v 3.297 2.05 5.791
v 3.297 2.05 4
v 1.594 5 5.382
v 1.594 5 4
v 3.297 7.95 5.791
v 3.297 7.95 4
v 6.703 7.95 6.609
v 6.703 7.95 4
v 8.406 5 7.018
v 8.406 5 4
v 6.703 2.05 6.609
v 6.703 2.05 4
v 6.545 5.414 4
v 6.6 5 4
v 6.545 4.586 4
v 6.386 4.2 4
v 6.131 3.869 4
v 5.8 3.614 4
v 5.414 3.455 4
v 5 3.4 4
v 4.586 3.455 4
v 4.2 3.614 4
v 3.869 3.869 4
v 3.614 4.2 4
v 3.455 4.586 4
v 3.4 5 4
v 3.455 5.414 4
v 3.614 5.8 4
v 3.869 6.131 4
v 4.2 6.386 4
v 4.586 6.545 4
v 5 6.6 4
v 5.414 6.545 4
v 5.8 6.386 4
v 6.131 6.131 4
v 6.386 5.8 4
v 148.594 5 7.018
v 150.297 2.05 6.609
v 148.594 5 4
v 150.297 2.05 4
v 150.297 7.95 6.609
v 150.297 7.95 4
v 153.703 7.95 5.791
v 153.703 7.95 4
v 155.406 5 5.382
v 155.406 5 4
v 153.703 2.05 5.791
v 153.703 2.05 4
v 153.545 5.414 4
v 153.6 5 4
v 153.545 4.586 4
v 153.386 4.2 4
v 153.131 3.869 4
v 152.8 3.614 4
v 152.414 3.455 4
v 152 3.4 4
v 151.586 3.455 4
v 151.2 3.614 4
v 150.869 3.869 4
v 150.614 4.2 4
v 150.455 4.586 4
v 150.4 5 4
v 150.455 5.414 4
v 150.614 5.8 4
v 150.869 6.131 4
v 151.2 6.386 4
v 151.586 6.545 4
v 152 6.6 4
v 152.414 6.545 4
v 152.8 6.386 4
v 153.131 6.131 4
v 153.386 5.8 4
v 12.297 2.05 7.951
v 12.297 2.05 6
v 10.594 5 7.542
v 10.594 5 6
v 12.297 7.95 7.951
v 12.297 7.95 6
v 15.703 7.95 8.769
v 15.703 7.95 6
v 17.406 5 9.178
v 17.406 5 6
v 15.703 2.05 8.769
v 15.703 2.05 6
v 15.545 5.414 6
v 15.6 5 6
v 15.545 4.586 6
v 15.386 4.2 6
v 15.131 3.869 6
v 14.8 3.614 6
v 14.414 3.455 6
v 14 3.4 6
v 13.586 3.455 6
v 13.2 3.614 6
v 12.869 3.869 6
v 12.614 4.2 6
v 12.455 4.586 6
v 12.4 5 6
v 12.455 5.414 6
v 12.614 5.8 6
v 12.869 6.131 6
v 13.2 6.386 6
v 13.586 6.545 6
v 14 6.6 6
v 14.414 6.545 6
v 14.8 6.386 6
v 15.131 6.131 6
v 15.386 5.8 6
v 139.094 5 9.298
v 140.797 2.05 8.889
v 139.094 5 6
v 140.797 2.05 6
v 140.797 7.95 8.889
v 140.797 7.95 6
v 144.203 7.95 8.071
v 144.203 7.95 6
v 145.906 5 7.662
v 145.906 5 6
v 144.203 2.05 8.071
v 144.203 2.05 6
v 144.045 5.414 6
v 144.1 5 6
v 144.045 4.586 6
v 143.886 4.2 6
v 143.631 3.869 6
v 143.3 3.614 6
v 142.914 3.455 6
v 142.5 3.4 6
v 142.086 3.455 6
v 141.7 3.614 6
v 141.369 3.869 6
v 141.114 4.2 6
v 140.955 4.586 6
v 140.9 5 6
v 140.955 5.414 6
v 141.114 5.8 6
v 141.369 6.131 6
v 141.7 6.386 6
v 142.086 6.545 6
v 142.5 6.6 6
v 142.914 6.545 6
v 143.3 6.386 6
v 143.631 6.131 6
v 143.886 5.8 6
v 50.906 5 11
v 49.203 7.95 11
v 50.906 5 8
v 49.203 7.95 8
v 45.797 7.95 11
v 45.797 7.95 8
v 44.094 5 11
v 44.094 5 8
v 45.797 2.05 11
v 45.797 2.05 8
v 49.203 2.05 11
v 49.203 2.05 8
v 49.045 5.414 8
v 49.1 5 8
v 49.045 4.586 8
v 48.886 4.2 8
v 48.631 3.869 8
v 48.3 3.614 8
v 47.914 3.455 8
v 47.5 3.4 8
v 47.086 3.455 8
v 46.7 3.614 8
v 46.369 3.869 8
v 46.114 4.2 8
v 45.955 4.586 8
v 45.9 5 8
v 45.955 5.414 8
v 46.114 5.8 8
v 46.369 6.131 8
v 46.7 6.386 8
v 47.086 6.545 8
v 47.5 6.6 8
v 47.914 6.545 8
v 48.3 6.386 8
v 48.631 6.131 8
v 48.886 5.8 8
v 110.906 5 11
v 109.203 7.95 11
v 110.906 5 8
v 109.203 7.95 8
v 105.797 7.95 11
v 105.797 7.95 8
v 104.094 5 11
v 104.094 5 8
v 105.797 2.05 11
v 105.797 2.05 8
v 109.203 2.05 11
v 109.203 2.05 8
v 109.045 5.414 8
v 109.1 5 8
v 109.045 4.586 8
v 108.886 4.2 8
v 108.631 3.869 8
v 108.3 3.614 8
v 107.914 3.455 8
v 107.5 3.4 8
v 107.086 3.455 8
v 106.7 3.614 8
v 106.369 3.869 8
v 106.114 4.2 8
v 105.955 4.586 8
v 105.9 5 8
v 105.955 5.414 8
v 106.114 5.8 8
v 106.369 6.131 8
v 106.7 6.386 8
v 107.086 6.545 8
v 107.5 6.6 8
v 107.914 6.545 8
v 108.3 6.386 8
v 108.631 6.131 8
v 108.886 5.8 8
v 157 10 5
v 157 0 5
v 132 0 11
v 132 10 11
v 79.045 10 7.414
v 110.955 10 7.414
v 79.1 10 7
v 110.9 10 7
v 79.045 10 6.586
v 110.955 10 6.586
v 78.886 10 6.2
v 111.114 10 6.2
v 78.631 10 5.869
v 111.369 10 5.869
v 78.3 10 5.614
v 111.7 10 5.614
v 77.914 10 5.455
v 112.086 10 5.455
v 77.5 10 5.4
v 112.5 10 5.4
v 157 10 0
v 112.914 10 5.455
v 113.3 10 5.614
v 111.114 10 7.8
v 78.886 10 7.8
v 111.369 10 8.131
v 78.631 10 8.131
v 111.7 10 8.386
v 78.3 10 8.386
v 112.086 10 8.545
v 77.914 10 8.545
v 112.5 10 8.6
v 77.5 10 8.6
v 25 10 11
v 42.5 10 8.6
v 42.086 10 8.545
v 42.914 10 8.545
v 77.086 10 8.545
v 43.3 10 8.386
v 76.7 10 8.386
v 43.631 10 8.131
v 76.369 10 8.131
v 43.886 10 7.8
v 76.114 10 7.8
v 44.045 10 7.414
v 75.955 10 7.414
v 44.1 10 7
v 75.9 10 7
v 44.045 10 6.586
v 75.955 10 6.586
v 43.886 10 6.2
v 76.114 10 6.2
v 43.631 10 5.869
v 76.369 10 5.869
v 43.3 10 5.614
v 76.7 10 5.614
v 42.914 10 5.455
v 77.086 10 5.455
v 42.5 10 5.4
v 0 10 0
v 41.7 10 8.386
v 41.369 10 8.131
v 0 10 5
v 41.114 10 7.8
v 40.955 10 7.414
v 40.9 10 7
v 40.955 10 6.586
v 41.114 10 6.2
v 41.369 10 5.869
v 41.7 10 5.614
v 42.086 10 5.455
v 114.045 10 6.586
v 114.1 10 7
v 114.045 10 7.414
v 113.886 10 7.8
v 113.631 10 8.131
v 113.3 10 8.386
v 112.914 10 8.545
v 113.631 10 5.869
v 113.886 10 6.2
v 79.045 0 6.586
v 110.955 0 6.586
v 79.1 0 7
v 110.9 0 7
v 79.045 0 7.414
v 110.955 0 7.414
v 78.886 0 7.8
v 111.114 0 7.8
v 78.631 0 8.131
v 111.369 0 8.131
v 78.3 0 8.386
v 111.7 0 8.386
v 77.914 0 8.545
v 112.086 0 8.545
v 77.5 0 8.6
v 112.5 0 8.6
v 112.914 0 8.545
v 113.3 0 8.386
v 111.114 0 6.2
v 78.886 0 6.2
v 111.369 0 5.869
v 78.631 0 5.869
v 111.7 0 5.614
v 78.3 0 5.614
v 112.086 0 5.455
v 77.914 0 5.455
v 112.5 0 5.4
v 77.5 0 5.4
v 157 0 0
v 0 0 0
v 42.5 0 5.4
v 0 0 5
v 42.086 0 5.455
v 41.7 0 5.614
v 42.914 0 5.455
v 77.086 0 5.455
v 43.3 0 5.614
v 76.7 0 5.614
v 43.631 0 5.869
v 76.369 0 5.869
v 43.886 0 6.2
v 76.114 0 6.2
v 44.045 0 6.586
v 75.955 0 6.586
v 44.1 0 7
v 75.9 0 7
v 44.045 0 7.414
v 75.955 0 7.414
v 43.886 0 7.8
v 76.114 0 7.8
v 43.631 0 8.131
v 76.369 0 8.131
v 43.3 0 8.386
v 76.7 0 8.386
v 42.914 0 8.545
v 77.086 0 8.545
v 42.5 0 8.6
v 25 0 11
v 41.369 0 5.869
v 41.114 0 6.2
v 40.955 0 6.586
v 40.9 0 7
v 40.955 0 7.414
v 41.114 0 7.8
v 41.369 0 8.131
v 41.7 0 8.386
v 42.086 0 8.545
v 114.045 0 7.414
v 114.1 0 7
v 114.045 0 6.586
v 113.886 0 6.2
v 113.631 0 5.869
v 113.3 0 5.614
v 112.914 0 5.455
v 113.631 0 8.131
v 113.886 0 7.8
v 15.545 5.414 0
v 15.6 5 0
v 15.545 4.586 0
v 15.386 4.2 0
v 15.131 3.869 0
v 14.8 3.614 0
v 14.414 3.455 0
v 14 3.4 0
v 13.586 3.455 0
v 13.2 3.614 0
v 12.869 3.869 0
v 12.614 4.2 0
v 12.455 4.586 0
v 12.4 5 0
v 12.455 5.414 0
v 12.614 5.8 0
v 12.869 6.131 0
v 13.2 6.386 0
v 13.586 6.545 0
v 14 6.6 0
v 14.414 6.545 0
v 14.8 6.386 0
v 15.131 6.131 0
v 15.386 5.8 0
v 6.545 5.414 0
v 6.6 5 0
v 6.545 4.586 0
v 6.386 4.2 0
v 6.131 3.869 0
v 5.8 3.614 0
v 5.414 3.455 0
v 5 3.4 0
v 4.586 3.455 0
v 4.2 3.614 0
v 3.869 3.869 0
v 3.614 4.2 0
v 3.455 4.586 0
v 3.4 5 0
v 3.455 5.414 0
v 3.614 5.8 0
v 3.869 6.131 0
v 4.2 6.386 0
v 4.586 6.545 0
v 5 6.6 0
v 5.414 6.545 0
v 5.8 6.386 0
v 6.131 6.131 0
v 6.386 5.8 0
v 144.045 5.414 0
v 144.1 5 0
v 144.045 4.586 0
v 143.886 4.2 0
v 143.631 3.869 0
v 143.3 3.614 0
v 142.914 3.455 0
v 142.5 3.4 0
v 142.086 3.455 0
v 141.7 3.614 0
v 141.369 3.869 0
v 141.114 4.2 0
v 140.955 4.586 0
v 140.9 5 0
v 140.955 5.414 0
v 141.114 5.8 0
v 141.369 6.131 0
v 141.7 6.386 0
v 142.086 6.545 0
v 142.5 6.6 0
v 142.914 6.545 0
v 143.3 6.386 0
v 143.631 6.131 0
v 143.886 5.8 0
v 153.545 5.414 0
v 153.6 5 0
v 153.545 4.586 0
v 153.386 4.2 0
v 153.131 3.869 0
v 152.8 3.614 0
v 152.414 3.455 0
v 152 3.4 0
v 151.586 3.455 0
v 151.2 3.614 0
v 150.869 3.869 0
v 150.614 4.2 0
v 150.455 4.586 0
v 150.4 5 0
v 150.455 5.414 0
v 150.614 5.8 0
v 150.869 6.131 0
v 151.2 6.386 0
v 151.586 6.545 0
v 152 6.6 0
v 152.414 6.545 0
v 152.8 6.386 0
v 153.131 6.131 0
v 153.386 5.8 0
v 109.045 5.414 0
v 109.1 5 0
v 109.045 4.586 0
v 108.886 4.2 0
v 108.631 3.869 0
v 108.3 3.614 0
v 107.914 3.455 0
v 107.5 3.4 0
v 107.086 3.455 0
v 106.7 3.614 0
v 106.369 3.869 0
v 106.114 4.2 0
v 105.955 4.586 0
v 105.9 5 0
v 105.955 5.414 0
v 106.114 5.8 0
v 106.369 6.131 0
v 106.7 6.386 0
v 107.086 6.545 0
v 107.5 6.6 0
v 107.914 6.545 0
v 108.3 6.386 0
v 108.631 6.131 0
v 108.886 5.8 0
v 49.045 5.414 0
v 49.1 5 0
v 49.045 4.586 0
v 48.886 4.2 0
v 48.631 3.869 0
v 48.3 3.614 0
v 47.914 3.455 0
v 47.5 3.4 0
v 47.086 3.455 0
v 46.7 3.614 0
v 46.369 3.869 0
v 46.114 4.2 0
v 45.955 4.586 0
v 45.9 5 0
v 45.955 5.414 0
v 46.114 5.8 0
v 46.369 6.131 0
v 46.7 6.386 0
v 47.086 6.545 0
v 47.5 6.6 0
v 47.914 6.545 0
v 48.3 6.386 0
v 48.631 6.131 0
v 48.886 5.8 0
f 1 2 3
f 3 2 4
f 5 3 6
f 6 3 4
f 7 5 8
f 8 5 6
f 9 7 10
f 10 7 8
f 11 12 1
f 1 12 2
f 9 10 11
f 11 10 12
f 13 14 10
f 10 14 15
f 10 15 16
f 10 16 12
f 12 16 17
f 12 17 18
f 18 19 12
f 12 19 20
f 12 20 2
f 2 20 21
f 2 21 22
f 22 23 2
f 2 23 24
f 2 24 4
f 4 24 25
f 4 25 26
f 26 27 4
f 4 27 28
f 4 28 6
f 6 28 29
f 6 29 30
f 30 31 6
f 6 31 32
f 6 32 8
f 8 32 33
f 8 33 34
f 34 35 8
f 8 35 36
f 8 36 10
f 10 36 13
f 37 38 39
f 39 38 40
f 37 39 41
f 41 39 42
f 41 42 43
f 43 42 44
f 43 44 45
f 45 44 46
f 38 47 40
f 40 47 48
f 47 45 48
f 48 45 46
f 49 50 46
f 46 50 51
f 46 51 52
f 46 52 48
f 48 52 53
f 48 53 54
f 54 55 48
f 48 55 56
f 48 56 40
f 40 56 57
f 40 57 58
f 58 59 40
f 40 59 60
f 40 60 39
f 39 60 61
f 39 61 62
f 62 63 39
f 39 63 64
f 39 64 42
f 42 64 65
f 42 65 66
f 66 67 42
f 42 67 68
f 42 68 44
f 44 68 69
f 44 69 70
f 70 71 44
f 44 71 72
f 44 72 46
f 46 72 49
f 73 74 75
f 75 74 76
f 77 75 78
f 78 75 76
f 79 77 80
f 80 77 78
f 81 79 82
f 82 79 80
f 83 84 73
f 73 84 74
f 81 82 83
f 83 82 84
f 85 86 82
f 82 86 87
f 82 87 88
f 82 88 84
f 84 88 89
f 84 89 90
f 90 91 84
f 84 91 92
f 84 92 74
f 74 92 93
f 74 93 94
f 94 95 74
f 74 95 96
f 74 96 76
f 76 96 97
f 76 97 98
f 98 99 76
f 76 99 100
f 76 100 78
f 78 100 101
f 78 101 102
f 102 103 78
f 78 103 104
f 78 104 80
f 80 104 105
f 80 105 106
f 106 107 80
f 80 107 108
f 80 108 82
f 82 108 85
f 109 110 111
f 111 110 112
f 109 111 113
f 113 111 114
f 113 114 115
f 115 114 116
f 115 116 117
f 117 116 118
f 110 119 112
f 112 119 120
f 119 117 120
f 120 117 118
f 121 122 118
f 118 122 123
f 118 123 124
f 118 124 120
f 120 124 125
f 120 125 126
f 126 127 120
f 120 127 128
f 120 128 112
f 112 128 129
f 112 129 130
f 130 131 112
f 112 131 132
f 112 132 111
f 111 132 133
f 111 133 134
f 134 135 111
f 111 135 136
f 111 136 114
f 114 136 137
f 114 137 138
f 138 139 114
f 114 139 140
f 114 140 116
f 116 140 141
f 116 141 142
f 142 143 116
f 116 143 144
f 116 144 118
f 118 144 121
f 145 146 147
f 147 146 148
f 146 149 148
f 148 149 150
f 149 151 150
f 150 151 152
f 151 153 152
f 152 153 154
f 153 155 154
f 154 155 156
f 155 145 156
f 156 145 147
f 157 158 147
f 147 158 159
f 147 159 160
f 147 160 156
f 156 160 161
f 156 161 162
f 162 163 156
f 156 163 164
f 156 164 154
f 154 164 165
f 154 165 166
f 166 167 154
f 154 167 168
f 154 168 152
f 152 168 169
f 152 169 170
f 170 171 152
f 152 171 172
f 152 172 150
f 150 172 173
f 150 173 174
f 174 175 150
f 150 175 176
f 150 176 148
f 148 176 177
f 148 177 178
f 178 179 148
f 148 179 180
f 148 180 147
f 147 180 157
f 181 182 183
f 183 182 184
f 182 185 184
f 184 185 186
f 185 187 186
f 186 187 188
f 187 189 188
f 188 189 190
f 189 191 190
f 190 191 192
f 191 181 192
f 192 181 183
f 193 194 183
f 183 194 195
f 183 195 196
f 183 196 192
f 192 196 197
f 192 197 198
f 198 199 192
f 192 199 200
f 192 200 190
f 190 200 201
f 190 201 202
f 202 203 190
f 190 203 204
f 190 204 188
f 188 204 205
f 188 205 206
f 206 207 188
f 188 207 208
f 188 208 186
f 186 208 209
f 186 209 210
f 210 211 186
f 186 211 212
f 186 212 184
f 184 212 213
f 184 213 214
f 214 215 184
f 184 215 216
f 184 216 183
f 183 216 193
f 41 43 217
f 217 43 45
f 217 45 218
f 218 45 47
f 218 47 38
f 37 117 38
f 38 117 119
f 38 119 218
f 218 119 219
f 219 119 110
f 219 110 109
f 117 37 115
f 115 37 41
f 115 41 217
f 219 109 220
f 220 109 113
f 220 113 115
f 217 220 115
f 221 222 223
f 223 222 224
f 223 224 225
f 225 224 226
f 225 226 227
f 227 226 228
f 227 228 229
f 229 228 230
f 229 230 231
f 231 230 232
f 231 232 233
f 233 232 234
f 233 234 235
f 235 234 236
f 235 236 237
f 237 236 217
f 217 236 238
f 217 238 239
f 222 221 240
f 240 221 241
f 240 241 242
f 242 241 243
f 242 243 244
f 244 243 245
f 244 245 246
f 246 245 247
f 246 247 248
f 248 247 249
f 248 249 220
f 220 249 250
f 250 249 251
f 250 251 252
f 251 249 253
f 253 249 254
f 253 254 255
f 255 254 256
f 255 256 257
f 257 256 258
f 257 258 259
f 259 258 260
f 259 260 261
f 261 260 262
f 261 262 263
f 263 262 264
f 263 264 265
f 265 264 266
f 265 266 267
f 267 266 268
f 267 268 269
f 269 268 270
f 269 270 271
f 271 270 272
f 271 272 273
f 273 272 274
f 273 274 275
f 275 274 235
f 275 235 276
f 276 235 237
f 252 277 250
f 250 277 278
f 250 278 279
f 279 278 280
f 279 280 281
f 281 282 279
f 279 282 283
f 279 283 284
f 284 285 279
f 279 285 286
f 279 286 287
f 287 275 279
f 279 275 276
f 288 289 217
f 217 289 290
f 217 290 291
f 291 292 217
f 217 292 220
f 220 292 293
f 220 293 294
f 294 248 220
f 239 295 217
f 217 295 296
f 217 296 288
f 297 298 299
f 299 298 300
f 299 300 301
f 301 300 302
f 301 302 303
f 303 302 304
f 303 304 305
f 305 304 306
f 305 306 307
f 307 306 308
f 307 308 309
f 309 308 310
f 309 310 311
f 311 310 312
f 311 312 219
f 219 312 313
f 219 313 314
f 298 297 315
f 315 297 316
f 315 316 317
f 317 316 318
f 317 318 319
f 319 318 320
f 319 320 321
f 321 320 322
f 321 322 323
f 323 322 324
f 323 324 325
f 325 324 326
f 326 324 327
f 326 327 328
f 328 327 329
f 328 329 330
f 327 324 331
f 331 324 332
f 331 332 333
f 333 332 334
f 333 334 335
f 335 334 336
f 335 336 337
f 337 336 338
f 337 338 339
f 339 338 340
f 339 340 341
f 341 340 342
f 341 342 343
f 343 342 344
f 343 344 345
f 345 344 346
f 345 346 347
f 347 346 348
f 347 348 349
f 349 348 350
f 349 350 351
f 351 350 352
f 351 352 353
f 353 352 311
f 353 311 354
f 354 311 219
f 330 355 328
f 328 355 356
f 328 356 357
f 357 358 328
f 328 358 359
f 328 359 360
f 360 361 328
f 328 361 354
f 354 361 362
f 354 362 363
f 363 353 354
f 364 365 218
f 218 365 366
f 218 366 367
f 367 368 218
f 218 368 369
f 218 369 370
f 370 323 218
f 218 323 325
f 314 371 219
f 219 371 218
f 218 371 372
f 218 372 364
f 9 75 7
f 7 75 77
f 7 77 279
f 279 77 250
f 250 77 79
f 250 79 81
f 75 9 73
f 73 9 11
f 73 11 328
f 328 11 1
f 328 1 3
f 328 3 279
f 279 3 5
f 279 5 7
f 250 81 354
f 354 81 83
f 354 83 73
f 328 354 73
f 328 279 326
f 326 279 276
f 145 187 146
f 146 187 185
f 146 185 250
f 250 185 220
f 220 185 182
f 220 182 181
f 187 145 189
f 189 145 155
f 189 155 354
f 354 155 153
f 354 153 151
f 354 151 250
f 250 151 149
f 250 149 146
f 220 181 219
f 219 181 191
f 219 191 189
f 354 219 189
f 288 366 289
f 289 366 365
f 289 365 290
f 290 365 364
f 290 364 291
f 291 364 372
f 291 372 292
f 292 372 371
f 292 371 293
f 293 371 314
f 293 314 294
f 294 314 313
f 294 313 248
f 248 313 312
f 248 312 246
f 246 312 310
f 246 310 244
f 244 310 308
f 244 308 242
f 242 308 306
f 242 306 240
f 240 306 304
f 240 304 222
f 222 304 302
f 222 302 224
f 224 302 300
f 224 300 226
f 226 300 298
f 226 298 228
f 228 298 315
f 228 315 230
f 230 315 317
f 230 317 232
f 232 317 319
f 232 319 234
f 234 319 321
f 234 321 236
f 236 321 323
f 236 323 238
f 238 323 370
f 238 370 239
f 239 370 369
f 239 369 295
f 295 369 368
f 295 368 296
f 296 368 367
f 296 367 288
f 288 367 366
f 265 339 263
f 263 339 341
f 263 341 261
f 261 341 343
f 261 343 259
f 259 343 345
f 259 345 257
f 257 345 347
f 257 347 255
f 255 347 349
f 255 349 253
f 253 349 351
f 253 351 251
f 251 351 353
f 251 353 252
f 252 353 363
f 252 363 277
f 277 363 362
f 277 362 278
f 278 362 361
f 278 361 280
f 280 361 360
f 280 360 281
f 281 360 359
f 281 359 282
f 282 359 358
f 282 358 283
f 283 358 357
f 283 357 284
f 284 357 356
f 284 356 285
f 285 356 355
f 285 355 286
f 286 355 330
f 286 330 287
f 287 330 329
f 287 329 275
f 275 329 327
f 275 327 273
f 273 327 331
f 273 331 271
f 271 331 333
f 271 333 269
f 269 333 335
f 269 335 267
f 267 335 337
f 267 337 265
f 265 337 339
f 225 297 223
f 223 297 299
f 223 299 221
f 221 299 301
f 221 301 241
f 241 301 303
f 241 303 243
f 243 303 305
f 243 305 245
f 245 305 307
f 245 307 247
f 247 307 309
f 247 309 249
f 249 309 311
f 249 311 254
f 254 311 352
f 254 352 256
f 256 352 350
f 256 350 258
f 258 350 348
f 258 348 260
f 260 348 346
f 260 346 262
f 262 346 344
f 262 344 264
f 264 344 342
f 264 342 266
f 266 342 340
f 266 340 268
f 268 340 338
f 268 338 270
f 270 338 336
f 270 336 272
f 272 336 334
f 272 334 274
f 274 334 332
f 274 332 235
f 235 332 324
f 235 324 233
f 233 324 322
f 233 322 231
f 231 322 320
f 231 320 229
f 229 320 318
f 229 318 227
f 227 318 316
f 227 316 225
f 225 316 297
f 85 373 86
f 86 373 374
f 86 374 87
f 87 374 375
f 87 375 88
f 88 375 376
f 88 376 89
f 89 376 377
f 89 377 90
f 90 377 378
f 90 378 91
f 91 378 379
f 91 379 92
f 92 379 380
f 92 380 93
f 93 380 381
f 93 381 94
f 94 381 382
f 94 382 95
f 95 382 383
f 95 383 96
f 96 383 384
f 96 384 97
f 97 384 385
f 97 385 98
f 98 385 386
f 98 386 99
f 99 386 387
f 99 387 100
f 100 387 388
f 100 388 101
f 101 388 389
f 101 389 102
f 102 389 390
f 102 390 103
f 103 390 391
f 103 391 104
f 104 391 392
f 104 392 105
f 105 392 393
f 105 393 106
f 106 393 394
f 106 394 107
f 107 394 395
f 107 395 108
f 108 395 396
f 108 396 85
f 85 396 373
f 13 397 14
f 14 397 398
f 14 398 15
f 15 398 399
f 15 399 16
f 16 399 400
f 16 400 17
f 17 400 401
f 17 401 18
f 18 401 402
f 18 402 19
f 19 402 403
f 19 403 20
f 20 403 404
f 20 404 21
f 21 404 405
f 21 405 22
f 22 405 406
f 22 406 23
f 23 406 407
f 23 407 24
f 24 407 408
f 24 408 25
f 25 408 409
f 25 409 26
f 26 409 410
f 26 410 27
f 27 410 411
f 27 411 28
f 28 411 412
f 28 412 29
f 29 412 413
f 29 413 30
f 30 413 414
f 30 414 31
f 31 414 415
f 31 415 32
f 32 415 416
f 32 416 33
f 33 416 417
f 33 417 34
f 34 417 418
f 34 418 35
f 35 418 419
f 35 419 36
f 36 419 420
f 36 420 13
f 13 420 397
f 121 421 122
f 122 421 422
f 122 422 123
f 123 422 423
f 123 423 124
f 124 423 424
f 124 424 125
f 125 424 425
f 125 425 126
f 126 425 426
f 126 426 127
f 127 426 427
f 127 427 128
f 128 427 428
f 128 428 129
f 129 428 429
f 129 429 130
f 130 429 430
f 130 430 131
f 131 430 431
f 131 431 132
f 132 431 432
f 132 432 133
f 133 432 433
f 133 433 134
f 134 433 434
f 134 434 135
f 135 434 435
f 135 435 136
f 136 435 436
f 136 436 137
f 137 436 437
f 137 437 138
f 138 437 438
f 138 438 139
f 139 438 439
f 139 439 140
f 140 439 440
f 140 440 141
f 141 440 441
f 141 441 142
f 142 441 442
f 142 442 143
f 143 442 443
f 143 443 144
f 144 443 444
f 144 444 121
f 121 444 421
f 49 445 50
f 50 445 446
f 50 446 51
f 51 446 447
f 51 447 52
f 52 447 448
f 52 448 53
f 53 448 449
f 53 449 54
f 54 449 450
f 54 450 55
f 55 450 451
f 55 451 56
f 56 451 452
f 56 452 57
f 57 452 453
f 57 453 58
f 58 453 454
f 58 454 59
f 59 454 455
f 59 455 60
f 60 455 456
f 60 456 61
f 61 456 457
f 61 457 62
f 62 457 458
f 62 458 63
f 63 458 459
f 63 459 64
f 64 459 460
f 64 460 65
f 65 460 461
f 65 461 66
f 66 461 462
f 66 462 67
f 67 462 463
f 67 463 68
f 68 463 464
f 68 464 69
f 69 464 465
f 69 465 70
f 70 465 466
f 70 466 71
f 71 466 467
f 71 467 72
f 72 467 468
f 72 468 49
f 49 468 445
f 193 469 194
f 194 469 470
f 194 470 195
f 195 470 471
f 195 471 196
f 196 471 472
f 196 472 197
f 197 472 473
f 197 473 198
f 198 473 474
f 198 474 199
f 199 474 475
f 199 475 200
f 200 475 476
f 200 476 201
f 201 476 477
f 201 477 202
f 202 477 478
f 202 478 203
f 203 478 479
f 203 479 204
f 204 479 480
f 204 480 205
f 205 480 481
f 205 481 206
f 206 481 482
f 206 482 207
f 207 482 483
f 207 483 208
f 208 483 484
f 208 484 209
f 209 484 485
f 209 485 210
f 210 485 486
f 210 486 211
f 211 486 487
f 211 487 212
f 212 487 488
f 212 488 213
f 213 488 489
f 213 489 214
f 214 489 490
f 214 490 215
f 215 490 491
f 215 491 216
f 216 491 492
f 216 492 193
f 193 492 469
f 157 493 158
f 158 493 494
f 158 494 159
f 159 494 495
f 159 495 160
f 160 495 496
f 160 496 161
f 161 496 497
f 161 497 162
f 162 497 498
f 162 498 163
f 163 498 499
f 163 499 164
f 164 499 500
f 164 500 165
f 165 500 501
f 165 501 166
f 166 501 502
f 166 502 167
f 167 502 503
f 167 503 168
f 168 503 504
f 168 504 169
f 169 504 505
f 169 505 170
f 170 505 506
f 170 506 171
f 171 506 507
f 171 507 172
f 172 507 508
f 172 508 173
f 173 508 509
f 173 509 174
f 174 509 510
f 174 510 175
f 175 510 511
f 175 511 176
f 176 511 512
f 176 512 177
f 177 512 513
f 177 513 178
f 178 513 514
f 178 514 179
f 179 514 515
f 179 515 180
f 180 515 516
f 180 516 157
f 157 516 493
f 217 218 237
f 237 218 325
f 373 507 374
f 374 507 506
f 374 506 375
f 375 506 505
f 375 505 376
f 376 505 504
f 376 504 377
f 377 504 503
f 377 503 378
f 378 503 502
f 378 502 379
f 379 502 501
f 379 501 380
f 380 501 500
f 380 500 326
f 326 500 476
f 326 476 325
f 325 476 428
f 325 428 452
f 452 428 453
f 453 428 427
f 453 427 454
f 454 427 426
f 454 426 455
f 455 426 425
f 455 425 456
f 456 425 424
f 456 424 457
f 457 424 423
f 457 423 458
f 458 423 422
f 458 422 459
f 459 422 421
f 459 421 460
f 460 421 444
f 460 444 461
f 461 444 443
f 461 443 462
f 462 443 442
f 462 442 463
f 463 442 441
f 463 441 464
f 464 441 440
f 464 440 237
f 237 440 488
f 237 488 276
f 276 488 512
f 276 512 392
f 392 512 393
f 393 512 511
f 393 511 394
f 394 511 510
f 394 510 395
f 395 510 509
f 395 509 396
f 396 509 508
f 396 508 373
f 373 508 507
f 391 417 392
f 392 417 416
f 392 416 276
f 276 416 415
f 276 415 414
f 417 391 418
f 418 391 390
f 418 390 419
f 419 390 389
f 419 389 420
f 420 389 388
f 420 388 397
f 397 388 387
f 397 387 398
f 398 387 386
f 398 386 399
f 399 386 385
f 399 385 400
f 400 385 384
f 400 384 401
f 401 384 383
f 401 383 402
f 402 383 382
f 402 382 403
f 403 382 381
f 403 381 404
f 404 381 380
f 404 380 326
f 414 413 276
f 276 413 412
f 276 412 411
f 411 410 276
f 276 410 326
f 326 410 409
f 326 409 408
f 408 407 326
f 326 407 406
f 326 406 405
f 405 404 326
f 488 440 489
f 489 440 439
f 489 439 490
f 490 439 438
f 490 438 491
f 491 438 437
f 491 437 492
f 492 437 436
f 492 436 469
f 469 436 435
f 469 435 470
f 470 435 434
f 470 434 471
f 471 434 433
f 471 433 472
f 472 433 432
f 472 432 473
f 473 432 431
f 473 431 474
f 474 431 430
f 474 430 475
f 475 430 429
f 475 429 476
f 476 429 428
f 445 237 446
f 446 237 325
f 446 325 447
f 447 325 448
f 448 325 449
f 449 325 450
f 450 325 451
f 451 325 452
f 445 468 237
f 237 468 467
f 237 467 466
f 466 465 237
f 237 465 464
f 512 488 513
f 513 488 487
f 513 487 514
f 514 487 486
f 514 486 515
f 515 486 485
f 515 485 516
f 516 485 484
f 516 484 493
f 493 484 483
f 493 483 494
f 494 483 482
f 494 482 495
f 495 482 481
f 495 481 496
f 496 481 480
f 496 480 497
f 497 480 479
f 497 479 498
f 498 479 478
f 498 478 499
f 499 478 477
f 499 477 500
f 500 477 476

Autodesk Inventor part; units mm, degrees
ref_plane "YZ Plane" through (0, 0, 0) normal (1, 0, 0) x (0, 1, 0)
ref_plane "XZ Plane" through (0, 0, 0) normal (0, 1, 0) x (-1, 0, 0)
ref_plane "XY Plane" through (0, 0, 0) normal (0, 0, 1) x (1, 0, 0)
sketch "Sketch1" plane through (0, 0, 0) normal (0, 0, 1) x (1, 0, 0)
  line L0 (0, 0) -> (157, 0)
  line L1 (157, 0) -> (157, 10)
  line L2 (157, 10) -> (0, 10)
  line L3 (0, 10) -> (0, 0)
  circle A0 centre (47.5, 5) radius 1.6
  circle A1 centre (107.5, 5) radius 1.6
  circle A2 centre (152, 5) radius 1.6
  circle A3 centre (142.5, 5) radius 1.6
  circle A4 centre (5, 5) radius 1.6
  circle A5 centre (14, 5) radius 1.6
  dimension "d1" = 10
  dimension "d2" = 90
  dimension "d4" = 3.2
  dimension "d6" = 3.2
  dimension "d7" = 3.2
  dimension "d8" = 60
  dimension "d9" = 44.5
  dimension "d26" = 3.2
  dimension "d27" = 35
  dimension "d28" = 3.2
  dimension "d29" = 42.5
  dimension "d32" = 5
  dimension "d33" = 5
  dimension "d34" = 3.2
  dimension "d35" = 9
ref_plane "Work Plane2" through (0, 0, 0) normal (0, -1, 0) x (1, 0, 0)
sketch "Sketch2" plane through (0, 0, 0) normal (0, -1, 0) x (1, 0, 0)
  circle A0 centre (42.5, 7) radius 1.6
  circle A1 centre (112.5, 7) radius 1.6
  circle A2 centre (77.5, 7) radius 1.6
  dimension "d13" = 3.2
  dimension "d15" = 3.2
  dimension "d16" = 70
  dimension "d17" = 3.2
  dimension "d18" = 35
ref_plane "Work Plane1" through (0, 0, 11) normal (0, 0, 1) x (1, 0, 0)
extrude "Extrusion4" add sketch "Sketch1" along normal blind 11
extrude "Extrusion5" cut sketch "Sketch2" against normal up to next
sketch "Sketch7" plane through (0, 0, 0) normal (0, -1, 0) x (1, 0, 0)
  line L0 (0, 11) -> (0, 5)
  line L1 (0, 11) -> (25, 11)
  line L2 (25, 11) -> (0, 5)
  point P0 (0, 0)
extrude "Extrusion6" cut sketch "Sketch7" against normal up to next
sketch "Sketch8" plane through (0, 0, 0) normal (0, -1, 0) x (1, 0, 0)
  line L0 (157, 11) -> (25, 11) projected
  line L1 (157, 11) -> (157, 5)
  line L2 (157, 0) -> (157, 11) projected
  line L3 (157, 0) -> (157, 11) projected
  line L4 (157, 11) -> (132, 11)
  line L5 (25, 11) -> (157, 11) projected
  line L6 (132, 11) -> (157, 5)
  point P0 (0, 0)
extrude "Extrusion7" cut sketch "Sketch8" against normal up to next
sketch "Sketch5" plane through (0, 0, 11) normal (0, 0, 1) x (1, 0, 0)
  circle A0 centre (47.5, 5) radius 1.6 projected
  line L0 (50.9064, 5) -> (49.2032, 2.05)
  line L1 (49.2032, 2.05) -> (45.7968, 2.05)
  line L2 (45.7968, 2.05) -> (44.0936, 5)
  line L3 (44.0936, 5) -> (45.7968, 7.95)
  line L4 (45.7968, 7.95) -> (49.2032, 7.95)
  line L5 (49.2032, 7.95) -> (50.9064, 5)
  circle A1 centre (107.5, 5) radius 1.6 projected
  line L6 (110.9064, 5) -> (109.2032, 2.05)
  line L7 (109.2032, 2.05) -> (105.7968, 2.05)
  line L8 (105.7968, 2.05) -> (104.0936, 5)
  line L9 (104.0936, 5) -> (105.7968, 7.95)
  line L10 (105.7968, 7.95) -> (109.2032, 7.95)
  line L11 (109.2032, 7.95) -> (110.9064, 5)
  dimension "d44" = 5.9
  dimension "d45" = 5.9
sketch "Sketch9" plane through (0, 0, 11) normal (0, 0, 1) x (1, 0, 0)
  circle A0 centre (14, 5) radius 1.6 projected
  line L0 (17.4064, 5) -> (15.7032, 2.05)
  line L1 (15.7032, 2.05) -> (12.2968, 2.05)
  line L2 (12.2968, 2.05) -> (10.5936, 5)
  line L3 (10.5936, 5) -> (12.2968, 7.95)
  line L4 (12.2968, 7.95) -> (15.7032, 7.95)
  line L5 (15.7032, 7.95) -> (17.4064, 5)
  circle A1 centre (142.5, 5) radius 1.6 projected
  line L6 (145.9064, 5) -> (144.2032, 2.05)
  line L7 (144.2032, 2.05) -> (140.7968, 2.05)
  line L8 (140.7968, 2.05) -> (139.0936, 5)
  line L9 (139.0936, 5) -> (140.7968, 7.95)
  line L10 (140.7968, 7.95) -> (144.2032, 7.95)
  line L11 (144.2032, 7.95) -> (145.9064, 5)
  point P0 (0, 0)
  dimension "d51" = 5.9
  dimension "d52" = 5.9
sketch "Sketch10" plane through (0, 0, 11) normal (0, 0, 1) x (1, 0, 0)
  line L0 (8.4064, 5) -> (6.7032, 2.05)
  line L1 (6.7032, 2.05) -> (3.2968, 2.05)
  line L2 (3.2968, 2.05) -> (1.5936, 5)
  line L3 (1.5936, 5) -> (3.2968, 7.95)
  line L4 (3.2968, 7.95) -> (6.7032, 7.95)
  line L5 (6.7032, 7.95) -> (8.4064, 5)
  line L6 (155.4064, 5) -> (153.7032, 2.05)
  line L7 (153.7032, 2.05) -> (150.2968, 2.05)
  line L8 (150.2968, 2.05) -> (148.5936, 5)
  line L9 (148.5936, 5) -> (150.2968, 7.95)
  line L10 (150.2968, 7.95) -> (153.7032, 7.95)
  line L11 (153.7032, 7.95) -> (155.4064, 5)
  point P0 (0, 0)
  point P1 (5, 5)
  point P2 (152, 5)
  dimension "d53" = 5.9
  dimension "d54" = 5.9
extrude "Extrusion8" cut sketch "Sketch5" against normal blind 3
extrude "Extrusion9" cut sketch "Sketch9" against normal blind 5
extrude "Extrusion10" cut sketch "Sketch10" against normal blind 7
properties part number "new_wheel_support_v2"
